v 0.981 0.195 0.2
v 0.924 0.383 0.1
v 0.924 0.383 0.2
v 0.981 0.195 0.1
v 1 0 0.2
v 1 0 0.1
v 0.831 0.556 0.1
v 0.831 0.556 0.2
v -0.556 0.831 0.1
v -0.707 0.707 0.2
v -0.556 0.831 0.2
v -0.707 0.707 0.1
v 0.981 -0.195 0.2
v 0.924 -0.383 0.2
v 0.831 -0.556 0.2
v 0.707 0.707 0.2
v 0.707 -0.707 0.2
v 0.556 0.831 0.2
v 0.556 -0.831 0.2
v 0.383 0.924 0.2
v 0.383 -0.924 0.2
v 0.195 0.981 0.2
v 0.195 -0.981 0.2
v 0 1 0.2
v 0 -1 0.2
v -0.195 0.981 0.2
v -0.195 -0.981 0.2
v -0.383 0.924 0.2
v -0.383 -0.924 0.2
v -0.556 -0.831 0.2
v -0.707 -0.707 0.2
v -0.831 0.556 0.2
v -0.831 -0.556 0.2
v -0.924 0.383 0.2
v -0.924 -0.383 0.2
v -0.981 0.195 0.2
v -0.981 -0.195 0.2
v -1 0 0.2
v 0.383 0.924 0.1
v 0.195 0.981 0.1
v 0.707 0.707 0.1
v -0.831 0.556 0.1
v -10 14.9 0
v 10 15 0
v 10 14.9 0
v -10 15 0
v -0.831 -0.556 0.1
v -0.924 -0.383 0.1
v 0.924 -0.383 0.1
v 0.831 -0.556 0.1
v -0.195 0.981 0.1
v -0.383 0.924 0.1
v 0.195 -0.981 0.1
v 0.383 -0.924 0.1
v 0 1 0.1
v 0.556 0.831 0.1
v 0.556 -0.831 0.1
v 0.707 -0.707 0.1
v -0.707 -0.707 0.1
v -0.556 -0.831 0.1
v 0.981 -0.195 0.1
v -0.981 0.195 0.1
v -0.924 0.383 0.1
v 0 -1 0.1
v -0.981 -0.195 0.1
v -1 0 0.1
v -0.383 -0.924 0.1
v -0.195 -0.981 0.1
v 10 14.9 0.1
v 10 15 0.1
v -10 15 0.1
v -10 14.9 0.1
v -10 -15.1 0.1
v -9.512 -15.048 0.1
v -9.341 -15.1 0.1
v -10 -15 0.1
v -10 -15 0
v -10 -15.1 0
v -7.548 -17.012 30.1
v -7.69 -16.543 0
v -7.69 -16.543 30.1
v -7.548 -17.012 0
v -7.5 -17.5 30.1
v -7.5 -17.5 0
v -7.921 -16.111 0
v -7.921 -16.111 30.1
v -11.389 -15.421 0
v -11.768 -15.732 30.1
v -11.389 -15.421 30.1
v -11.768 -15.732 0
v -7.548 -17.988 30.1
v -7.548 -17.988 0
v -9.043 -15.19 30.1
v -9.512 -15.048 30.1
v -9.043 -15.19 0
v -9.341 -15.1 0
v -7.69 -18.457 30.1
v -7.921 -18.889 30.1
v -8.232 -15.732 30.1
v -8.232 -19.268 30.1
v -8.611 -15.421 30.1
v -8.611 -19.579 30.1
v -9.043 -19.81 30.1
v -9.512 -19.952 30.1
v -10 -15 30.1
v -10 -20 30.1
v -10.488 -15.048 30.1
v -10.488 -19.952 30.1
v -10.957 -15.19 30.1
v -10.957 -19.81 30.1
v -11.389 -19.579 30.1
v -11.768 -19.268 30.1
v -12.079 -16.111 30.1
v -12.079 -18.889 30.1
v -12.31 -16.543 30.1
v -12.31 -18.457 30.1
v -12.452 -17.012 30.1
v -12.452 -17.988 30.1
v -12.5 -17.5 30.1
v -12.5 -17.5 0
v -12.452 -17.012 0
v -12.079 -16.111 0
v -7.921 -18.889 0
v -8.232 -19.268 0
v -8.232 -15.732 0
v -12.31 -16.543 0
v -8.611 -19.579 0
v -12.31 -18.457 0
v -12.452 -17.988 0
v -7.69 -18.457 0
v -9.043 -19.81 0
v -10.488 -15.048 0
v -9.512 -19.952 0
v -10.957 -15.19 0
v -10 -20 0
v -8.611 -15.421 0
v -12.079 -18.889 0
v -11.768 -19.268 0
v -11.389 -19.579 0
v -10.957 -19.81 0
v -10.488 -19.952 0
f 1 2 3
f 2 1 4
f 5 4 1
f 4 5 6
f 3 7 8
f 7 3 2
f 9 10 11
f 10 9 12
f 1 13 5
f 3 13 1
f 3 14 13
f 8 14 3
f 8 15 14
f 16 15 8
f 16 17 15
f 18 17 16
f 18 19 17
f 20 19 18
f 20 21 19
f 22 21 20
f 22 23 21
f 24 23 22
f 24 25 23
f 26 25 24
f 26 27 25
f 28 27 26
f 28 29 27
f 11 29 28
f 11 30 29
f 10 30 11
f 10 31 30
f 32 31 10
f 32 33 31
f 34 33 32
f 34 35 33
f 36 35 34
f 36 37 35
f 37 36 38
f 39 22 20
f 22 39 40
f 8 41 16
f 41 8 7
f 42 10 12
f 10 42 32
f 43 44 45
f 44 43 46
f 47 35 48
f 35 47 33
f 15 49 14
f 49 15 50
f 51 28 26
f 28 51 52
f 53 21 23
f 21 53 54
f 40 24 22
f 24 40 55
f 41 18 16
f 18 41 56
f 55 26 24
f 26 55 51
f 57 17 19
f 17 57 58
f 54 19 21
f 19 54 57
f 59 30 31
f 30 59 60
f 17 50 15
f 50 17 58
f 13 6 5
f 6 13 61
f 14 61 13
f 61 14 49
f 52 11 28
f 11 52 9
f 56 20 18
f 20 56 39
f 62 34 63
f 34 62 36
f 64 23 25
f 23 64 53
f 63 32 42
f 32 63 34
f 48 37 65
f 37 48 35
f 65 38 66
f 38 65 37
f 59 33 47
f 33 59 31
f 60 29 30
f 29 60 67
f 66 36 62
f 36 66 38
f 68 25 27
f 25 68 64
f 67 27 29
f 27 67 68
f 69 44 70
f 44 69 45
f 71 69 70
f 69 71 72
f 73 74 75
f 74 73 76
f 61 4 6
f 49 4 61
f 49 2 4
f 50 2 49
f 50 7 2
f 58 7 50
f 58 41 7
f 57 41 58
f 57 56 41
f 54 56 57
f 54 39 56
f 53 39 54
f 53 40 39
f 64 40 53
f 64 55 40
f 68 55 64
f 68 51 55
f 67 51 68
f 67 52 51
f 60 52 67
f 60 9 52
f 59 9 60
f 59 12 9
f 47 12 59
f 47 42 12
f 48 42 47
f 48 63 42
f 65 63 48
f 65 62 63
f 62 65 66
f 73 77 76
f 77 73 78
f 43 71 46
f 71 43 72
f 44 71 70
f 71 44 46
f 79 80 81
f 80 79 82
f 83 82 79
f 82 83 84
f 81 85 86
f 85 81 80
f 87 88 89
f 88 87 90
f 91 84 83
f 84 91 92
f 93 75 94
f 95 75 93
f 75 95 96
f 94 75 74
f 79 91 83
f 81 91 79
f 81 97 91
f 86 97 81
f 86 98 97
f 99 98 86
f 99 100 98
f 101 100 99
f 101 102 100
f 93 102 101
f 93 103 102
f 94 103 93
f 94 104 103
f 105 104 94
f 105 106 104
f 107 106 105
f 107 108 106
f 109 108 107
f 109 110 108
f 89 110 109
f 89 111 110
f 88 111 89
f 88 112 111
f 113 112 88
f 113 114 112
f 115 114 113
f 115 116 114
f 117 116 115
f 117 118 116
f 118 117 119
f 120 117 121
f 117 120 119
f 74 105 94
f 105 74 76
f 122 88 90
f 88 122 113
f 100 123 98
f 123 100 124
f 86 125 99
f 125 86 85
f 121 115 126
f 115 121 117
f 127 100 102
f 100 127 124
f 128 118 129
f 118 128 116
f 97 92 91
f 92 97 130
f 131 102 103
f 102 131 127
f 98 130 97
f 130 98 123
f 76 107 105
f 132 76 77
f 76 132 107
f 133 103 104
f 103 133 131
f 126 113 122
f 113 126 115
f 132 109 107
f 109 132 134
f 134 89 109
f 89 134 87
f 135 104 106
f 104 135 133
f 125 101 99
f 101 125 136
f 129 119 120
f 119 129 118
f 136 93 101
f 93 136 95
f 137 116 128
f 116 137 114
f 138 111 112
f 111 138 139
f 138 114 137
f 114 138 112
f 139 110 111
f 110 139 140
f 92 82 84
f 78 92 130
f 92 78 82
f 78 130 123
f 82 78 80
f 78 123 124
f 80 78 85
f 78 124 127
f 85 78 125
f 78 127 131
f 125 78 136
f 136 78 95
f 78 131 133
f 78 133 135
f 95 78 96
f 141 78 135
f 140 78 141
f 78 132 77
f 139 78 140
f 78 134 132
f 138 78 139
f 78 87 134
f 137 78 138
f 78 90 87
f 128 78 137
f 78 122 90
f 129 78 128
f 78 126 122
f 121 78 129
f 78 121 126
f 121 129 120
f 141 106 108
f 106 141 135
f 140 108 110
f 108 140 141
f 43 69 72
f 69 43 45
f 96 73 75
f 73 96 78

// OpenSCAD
// Puzzle Piece Generator - OpenSCAD Code

// Parameters
piece_width = 20;
piece_height = 30;
hole_diameter = 5;
rounding_radius = 1;
corner_fillet_radius = 1;

module puzzle_piece(width, height, hole_diameter, rounding_radius, corner_fillet_radius) {
  difference() {
    union() {
      // Main body
      translate([-width/2, -height/2])
        cube([width, height, 0.1]);

      // Rounded corners
      for (i = [0, 1, 2, 3]) {
        rotate([0,0,i * 90])
          translate([0, 0, 0])
            cylinder(r = rounding_radius, h = 0.2, $fn=32);
      }

      // Hole
      translate([-width/2, -height/2 - hole_diameter/2, 0])
        cylinder(h = height + 0.1, r = hole_diameter/2, $fn=32);
    }
    
    //Cut out for the rounded shape
    translate([-width/2, -height/2 - 0.1, -0.1])
    cube([width, height, 0.2]);
  }
}

puzzle_piece(piece_width, piece_height, hole_diameter, rounding_radius, corner_fillet_radius);
